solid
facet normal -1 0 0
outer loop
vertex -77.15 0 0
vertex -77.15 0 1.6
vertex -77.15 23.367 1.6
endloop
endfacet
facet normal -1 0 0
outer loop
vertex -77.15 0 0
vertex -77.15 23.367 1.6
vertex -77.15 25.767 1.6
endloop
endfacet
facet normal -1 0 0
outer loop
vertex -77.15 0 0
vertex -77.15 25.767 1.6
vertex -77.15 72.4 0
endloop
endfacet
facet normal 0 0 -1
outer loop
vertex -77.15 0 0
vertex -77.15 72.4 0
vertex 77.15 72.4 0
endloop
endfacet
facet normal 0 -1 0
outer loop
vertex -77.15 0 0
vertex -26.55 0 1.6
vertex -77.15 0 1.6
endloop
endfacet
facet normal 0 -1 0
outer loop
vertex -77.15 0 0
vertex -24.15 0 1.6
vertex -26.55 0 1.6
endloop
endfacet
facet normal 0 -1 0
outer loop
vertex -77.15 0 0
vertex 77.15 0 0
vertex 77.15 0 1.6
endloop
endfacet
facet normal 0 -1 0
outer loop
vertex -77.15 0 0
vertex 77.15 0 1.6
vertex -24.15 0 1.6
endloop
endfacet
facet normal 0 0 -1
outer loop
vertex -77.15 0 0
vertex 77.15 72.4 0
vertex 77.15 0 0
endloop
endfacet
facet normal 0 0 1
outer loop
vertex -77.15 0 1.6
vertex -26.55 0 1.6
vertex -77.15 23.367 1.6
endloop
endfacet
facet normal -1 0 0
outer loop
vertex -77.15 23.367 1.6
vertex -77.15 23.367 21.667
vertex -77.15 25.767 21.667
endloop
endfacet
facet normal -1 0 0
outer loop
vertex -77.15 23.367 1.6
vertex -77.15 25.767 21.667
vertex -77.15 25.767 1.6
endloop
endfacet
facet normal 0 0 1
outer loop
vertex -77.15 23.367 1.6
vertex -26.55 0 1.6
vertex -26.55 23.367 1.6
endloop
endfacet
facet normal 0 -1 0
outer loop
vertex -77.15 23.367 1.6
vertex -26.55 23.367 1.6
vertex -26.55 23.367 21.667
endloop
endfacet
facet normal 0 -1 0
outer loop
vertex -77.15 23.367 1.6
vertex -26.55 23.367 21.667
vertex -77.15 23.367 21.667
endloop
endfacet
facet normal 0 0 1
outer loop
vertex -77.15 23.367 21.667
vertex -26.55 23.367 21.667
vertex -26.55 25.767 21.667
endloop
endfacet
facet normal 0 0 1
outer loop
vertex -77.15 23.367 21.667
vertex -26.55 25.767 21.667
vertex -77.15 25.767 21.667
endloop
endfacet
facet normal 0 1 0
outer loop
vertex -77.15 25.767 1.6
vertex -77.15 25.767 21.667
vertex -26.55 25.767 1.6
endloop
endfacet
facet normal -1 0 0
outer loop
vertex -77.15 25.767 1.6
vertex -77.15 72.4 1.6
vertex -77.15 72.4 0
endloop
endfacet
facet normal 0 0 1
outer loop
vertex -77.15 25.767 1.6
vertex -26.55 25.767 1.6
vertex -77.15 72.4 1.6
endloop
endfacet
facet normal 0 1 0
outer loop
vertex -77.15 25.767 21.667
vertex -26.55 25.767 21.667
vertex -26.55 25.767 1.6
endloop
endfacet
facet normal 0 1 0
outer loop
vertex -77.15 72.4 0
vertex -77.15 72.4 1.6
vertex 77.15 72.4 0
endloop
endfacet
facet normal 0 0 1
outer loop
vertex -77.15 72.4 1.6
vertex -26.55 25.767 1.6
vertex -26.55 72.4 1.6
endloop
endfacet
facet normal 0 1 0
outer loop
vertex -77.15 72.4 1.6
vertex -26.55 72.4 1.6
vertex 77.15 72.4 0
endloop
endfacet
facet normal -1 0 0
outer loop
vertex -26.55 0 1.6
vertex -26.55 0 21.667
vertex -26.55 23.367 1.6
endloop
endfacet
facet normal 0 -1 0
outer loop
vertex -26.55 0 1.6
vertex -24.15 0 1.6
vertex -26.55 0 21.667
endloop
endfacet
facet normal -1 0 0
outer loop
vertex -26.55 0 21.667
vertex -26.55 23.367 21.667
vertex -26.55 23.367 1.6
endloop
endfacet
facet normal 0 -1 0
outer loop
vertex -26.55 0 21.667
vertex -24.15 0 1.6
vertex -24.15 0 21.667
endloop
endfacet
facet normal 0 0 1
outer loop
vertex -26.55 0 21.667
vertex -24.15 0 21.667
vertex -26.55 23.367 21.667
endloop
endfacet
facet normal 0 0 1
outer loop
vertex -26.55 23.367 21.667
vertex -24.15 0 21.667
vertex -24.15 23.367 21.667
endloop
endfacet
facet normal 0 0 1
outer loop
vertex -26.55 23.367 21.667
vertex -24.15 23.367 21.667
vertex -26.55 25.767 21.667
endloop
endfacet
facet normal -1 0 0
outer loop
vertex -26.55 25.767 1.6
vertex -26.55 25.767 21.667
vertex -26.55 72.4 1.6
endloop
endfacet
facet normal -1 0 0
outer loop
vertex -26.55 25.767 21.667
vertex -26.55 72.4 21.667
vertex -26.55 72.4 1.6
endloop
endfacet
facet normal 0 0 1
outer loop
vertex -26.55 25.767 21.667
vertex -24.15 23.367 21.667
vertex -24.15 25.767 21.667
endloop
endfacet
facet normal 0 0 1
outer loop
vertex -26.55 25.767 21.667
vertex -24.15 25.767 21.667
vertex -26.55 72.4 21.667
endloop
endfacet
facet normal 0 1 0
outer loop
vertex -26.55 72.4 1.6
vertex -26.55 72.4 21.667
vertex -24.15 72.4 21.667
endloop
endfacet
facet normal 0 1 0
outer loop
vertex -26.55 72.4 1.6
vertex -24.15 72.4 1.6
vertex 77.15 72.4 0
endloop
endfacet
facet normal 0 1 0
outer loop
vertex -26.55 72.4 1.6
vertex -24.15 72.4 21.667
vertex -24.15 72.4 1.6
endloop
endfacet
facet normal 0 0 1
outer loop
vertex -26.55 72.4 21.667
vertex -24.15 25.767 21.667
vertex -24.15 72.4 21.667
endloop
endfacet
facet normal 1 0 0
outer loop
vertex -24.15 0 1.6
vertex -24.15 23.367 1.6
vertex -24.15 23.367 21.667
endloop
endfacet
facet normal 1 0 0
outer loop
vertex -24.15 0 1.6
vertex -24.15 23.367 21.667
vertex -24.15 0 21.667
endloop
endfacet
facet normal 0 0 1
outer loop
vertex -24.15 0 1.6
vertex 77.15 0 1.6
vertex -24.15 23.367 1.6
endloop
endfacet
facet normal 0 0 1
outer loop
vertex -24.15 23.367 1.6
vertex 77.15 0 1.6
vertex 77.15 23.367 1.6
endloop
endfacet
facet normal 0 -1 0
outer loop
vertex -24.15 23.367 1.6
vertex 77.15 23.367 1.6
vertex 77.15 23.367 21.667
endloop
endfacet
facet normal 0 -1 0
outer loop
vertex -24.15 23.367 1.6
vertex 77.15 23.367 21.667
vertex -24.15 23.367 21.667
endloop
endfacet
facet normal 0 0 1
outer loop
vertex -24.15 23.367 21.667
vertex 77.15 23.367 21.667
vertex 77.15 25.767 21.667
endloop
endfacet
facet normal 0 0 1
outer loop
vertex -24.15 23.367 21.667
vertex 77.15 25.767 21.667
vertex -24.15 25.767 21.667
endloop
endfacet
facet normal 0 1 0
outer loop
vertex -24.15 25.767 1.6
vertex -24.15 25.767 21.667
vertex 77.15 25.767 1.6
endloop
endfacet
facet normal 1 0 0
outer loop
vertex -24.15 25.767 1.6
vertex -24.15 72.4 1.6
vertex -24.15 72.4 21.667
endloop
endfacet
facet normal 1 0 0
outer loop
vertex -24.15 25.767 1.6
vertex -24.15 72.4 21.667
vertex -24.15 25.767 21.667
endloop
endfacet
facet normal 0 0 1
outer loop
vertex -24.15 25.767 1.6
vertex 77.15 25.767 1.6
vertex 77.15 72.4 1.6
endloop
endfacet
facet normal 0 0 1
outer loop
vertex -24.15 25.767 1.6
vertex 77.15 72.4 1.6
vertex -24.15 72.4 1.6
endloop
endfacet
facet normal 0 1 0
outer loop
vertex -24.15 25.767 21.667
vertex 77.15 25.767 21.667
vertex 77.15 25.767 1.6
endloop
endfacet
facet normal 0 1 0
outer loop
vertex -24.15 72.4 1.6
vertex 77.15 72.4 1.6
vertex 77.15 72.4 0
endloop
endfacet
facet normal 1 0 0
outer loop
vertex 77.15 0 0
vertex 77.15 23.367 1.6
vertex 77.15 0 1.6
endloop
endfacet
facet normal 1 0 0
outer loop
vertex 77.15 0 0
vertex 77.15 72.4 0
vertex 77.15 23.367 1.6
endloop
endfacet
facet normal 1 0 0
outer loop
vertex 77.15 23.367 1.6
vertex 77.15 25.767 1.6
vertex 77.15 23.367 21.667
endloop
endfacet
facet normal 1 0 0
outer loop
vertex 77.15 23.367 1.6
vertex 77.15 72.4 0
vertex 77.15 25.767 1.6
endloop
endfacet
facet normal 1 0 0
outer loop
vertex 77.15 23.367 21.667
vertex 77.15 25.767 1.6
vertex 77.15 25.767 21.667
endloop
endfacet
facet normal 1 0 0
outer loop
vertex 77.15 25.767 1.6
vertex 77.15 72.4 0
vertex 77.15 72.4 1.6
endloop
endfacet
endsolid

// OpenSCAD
// Start: lazy_union
default_5_default_5();
// End: lazy_union

// Modules.

// 'PartMaterial undef-default - default 5.0'
module default_5_default_5() {
  // 'None : _combine_solids_and_holes'
  union() {
    // 'default : _combine_solids_and_holes'
    union() {
      // 'cut : _combine_solids_and_holes'
      intersection() {
        // 'mix_grid_box'
        multmatrix(m=[[0.0, 1.0, 0.0, 0.0], [-1.0, -0.0, -0.0, -0.0], [0.0, 0.0, 1.0, 0.0], [0.0, 0.0, 0.0, 1.0]]) {
          // '_combine_solids_and_holes'
          difference() {
            // 'mix_grid_box : _combine_solids_and_holes'
            union() {
              // 'box'
              multmatrix(m=[[1.0, 0.0, 0.0, -74.9], [0.0, 1.0, 0.0, -79.65], [0.0, 0.0, 1.0, 0.0], [0.0, 0.0, 0.0, 1.0]]) {
                // 'box : _combine_solids_and_holes'
                union() {
                  // 'box'
                  cube(size=[149.8, 159.3, 21.666666666666668]);
                }
              }
            }
            // 'mix_grid_box'
            multmatrix(m=[[1.0, 0.0, 0.0, -72.5], [0.0, 1.0, 0.0, -24.15000000000002], [0.0, 0.0, 1.0, 1.6], [0.0, 0.0, 0.0, 1.0]]) {
              // "('hole', 0, 0) : _combine_solids_and_holes"
              union() {
                // ('hole', 0, 0)
                cube(size=[46.73333333333334, 101.40000000000002, 20.076666666666668]);
              }
            }
            // 'mix_grid_box'
            multmatrix(m=[[1.0, 0.0, 0.0, -72.5], [0.0, 1.0, 0.0, -77.25000000000003], [0.0, 0.0, 1.0, 1.6], [0.0, 0.0, 0.0, 1.0]]) {
              // "('hole', 0, 1) : _combine_solids_and_holes"
              union() {
                // ('hole', 0, 1)
                cube(size=[46.73333333333334, 50.70000000000001, 20.076666666666668]);
              }
            }
            // 'mix_grid_box'
            multmatrix(m=[[1.0, 0.0, 0.0, -23.366666666666667], [0.0, 1.0, 0.0, -24.15000000000002], [0.0, 0.0, 1.0, 1.6], [0.0, 0.0, 0.0, 1.0]]) {
              // "('hole', 1, 0) : _combine_solids_and_holes"
              union() {
                // ('hole', 1, 0)
                cube(size=[46.73333333333334, 101.40000000000002, 20.076666666666668]);
              }
            }
            // 'mix_grid_box'
            multmatrix(m=[[1.0, 0.0, 0.0, -23.366666666666667], [0.0, 1.0, 0.0, -77.25000000000003], [0.0, 0.0, 1.0, 1.6], [0.0, 0.0, 0.0, 1.0]]) {
              // "('hole', 1, 1) : _combine_solids_and_holes"
              union() {
                // ('hole', 1, 1)
                cube(size=[46.73333333333334, 50.70000000000001, 20.076666666666668]);
              }
            }
            // 'mix_grid_box'
            multmatrix(m=[[1.0, 0.0, 0.0, 25.76666666666668], [0.0, 1.0, 0.0, -24.15000000000002], [0.0, 0.0, 1.0, 1.6], [0.0, 0.0, 0.0, 1.0]]) {
              // "('hole', 2, 0) : _combine_solids_and_holes"
              union() {
                // ('hole', 2, 0)
                cube(size=[46.73333333333334, 101.40000000000002, 20.076666666666668]);
              }
            }
            // 'mix_grid_box'
            multmatrix(m=[[1.0, 0.0, 0.0, 25.76666666666668], [0.0, 1.0, 0.0, -77.25000000000003], [0.0, 0.0, 1.0, 1.6], [0.0, 0.0, 0.0, 1.0]]) {
              // "('hole', 2, 1) : _combine_solids_and_holes"
              union() {
                // ('hole', 2, 1)
                cube(size=[46.73333333333334, 50.70000000000001, 20.076666666666668]);
              }
            }
          }
        }
        // 'cut'
        multmatrix(m=[[0.0, 1.0, 0.0, -77.15], [1.0, 0.0, 0.0, 0.0], [0.0, 0.0, -1.0, 21.666666666666668], [0.0, 0.0, 0.0, 1.0]]) {
          // 'cut : _combine_solids_and_holes'
          union() {
            // 'cut'
            cube(size=[72.4, 154.3, 21.666666666666668]);
          }
        }
      }
    }
  }
} // end module default_5_default_5
